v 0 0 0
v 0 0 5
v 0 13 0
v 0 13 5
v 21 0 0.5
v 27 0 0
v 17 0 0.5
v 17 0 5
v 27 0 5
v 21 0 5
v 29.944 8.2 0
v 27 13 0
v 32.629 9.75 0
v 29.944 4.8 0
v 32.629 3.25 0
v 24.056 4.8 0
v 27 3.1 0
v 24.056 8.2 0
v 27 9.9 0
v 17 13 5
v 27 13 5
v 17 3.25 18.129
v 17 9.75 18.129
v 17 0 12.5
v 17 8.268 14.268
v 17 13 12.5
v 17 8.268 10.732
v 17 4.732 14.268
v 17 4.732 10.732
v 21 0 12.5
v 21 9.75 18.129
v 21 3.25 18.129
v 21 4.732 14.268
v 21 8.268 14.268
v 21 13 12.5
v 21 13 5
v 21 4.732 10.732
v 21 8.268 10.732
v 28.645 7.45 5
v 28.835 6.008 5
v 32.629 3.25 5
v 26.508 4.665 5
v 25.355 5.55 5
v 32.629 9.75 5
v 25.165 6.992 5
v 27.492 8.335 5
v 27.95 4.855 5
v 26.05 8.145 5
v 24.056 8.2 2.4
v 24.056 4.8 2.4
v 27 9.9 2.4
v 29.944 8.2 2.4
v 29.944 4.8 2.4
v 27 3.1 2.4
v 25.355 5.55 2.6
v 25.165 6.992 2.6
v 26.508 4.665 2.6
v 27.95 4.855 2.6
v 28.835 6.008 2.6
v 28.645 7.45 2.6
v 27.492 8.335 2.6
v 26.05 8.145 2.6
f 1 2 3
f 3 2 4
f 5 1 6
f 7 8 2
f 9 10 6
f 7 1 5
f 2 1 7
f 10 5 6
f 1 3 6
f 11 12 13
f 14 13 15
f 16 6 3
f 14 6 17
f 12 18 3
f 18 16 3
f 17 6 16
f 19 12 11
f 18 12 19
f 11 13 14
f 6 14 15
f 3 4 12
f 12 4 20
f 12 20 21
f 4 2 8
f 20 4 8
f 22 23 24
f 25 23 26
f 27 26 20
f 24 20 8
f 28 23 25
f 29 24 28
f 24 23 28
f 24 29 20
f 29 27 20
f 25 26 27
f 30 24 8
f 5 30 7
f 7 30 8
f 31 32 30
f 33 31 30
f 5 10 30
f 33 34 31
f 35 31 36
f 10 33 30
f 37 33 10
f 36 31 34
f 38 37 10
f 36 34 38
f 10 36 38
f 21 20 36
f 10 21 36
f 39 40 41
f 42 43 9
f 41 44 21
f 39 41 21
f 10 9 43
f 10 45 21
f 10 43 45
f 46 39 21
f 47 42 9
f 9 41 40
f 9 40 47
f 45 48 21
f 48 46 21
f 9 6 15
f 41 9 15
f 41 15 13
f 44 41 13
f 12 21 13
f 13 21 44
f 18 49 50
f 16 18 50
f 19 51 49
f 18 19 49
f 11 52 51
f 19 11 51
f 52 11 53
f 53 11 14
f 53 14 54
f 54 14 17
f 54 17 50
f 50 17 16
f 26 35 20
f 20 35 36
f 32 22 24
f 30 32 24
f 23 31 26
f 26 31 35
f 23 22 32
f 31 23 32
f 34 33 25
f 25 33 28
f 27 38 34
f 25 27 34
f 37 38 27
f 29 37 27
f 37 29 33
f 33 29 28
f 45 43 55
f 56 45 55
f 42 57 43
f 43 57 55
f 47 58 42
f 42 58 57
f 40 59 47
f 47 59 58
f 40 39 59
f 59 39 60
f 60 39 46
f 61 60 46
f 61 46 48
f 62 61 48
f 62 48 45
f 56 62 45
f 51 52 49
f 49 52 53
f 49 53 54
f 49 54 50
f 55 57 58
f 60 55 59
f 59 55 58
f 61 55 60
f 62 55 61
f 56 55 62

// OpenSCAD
difference() {
	union() {
		cube([27, 13, 5]);
		translate([27, 6.5, 0]) rotate([0, 0, 30]) cylinder(r = 6.5, h = 5, $fn = 6);
	}
	translate([27, 6.5, 0]) rotate([0, 0, 30]) {
		cylinder(r = 3.4, h = 2.4, $fn = 6);
		translate([0, 0, 2.6]) cylinder(r = 1.9, h = 2.4, $fn = 8);
	}
}
translate([17, 6.5, 5+7.5]) {
	rotate([90, 0, 90]) {
		difference() {
			union () {
				cylinder(r = 6.5, h = 4, $fn = 6);
				translate([-6.5, -12, 0]) cube([13, 12, 4]);
			}
			rotate([0, 0, 45]) cylinder(r = 2.5, h = 4, $fn = 4);
		}
	}
}
